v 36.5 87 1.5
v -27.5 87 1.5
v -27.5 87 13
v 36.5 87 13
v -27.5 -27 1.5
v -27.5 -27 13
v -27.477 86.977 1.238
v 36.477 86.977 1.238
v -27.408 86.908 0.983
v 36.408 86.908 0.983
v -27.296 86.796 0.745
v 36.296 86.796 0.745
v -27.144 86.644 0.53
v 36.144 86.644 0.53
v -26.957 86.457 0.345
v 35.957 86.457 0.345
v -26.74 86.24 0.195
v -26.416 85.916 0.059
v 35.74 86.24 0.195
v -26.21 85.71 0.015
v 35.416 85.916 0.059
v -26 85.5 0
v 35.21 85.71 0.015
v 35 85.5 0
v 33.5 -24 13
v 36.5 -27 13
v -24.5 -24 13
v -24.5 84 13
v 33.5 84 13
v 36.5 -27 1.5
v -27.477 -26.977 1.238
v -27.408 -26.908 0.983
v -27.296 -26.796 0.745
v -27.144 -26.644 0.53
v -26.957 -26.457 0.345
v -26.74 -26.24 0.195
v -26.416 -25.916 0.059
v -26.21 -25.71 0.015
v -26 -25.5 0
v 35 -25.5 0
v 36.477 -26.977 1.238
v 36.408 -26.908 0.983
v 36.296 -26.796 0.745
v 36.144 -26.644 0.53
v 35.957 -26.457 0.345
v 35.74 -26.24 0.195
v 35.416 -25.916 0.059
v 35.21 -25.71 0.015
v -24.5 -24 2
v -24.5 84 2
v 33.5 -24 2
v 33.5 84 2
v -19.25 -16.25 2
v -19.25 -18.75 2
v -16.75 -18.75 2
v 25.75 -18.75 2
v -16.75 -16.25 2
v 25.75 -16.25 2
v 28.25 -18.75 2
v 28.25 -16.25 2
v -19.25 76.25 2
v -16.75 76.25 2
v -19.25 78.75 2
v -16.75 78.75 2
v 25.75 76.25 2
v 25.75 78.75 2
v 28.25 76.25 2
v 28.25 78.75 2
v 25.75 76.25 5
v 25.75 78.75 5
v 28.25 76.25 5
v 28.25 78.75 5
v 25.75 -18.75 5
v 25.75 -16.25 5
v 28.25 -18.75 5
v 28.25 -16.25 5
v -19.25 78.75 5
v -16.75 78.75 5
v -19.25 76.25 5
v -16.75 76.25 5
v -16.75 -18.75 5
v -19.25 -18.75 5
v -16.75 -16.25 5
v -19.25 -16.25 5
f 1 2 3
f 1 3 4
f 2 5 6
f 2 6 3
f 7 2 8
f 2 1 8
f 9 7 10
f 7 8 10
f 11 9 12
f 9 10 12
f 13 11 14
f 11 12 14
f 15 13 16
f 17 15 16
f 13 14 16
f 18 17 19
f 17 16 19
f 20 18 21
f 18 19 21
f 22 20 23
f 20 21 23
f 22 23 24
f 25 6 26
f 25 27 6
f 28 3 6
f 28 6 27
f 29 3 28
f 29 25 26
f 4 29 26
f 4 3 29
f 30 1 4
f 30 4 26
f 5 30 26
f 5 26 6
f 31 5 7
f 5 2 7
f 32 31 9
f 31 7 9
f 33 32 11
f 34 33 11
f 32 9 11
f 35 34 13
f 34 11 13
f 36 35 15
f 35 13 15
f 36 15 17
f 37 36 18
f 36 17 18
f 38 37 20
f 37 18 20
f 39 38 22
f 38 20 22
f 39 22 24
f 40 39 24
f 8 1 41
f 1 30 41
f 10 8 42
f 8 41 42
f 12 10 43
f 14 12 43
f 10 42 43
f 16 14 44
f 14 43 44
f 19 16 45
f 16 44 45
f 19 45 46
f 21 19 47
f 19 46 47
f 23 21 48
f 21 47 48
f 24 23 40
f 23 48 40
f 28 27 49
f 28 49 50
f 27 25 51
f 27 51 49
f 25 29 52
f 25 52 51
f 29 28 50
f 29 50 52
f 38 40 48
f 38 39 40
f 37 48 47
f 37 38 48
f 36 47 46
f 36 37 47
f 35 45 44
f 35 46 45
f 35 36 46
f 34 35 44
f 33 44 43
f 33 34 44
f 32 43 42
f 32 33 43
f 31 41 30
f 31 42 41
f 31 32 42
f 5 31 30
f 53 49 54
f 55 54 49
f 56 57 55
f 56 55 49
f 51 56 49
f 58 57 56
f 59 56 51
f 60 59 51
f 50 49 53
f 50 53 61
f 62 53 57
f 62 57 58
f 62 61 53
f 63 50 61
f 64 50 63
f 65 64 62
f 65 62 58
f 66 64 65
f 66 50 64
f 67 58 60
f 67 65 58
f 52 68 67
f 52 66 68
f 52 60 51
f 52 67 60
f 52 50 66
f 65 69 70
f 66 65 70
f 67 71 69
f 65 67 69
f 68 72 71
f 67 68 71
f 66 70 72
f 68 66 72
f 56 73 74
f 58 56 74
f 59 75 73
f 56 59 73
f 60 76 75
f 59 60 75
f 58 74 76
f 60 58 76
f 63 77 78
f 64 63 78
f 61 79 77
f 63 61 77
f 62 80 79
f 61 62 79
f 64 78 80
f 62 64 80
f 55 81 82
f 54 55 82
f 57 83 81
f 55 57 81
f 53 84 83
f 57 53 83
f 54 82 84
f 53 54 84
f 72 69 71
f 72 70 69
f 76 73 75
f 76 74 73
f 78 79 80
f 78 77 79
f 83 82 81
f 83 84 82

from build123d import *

# Parameters (mm, degrees)
SKETCH_W     = 64
SKETCH_H     = 114
PAD_DEPTH    = 13
SKETCH002_W  = 58
SKETCH002_H  = 108
POCKET_DEPTH = 11
SKETCH007_W  = 2.5
SKETCH007_H  = 2.5
PAD001_DEPTH = 3
FILLET_R     = 1.5


with BuildPart() as part:
    # Sketch → Pad (new body)
    with BuildSketch(Plane.XY):
        with Locations((4.5, 30)):
            Rectangle(SKETCH_W, SKETCH_H)
    extrude(amount=PAD_DEPTH)

    # Sketch002 → Pocket (cut)
    with BuildSketch(Plane.XY.offset(13)):
        with Locations((4.5, 30)):
            Rectangle(SKETCH002_W, SKETCH002_H)
    extrude(amount=-POCKET_DEPTH, mode=Mode.SUBTRACT)

    # Sketch007 → Pad001 (new body)
    with BuildSketch(Plane.XY.offset(2)):
        with Locations((-18, 77.5)):
            Rectangle(SKETCH007_W, SKETCH007_H)
        with Locations((27, 77.5)):
            Rectangle(SKETCH007_W, SKETCH007_H)
        with Locations((-18, -17.5)):
            Rectangle(SKETCH007_W, SKETCH007_H)
        with Locations((27, -17.5)):
            Rectangle(SKETCH007_W, SKETCH007_H)
    extrude(amount=PAD001_DEPTH)

    # Fillet
    fillet_edges = [part.edges().sort_by_distance(p)[0] for p in [
        (4.5, 87, 0),
        (-27.5, 30, 0),
        (36.5, 30, 0),
        (4.5, -27, 0),
    ]]
    fillet(fillet_edges, radius=FILLET_R)


solid = part.part
